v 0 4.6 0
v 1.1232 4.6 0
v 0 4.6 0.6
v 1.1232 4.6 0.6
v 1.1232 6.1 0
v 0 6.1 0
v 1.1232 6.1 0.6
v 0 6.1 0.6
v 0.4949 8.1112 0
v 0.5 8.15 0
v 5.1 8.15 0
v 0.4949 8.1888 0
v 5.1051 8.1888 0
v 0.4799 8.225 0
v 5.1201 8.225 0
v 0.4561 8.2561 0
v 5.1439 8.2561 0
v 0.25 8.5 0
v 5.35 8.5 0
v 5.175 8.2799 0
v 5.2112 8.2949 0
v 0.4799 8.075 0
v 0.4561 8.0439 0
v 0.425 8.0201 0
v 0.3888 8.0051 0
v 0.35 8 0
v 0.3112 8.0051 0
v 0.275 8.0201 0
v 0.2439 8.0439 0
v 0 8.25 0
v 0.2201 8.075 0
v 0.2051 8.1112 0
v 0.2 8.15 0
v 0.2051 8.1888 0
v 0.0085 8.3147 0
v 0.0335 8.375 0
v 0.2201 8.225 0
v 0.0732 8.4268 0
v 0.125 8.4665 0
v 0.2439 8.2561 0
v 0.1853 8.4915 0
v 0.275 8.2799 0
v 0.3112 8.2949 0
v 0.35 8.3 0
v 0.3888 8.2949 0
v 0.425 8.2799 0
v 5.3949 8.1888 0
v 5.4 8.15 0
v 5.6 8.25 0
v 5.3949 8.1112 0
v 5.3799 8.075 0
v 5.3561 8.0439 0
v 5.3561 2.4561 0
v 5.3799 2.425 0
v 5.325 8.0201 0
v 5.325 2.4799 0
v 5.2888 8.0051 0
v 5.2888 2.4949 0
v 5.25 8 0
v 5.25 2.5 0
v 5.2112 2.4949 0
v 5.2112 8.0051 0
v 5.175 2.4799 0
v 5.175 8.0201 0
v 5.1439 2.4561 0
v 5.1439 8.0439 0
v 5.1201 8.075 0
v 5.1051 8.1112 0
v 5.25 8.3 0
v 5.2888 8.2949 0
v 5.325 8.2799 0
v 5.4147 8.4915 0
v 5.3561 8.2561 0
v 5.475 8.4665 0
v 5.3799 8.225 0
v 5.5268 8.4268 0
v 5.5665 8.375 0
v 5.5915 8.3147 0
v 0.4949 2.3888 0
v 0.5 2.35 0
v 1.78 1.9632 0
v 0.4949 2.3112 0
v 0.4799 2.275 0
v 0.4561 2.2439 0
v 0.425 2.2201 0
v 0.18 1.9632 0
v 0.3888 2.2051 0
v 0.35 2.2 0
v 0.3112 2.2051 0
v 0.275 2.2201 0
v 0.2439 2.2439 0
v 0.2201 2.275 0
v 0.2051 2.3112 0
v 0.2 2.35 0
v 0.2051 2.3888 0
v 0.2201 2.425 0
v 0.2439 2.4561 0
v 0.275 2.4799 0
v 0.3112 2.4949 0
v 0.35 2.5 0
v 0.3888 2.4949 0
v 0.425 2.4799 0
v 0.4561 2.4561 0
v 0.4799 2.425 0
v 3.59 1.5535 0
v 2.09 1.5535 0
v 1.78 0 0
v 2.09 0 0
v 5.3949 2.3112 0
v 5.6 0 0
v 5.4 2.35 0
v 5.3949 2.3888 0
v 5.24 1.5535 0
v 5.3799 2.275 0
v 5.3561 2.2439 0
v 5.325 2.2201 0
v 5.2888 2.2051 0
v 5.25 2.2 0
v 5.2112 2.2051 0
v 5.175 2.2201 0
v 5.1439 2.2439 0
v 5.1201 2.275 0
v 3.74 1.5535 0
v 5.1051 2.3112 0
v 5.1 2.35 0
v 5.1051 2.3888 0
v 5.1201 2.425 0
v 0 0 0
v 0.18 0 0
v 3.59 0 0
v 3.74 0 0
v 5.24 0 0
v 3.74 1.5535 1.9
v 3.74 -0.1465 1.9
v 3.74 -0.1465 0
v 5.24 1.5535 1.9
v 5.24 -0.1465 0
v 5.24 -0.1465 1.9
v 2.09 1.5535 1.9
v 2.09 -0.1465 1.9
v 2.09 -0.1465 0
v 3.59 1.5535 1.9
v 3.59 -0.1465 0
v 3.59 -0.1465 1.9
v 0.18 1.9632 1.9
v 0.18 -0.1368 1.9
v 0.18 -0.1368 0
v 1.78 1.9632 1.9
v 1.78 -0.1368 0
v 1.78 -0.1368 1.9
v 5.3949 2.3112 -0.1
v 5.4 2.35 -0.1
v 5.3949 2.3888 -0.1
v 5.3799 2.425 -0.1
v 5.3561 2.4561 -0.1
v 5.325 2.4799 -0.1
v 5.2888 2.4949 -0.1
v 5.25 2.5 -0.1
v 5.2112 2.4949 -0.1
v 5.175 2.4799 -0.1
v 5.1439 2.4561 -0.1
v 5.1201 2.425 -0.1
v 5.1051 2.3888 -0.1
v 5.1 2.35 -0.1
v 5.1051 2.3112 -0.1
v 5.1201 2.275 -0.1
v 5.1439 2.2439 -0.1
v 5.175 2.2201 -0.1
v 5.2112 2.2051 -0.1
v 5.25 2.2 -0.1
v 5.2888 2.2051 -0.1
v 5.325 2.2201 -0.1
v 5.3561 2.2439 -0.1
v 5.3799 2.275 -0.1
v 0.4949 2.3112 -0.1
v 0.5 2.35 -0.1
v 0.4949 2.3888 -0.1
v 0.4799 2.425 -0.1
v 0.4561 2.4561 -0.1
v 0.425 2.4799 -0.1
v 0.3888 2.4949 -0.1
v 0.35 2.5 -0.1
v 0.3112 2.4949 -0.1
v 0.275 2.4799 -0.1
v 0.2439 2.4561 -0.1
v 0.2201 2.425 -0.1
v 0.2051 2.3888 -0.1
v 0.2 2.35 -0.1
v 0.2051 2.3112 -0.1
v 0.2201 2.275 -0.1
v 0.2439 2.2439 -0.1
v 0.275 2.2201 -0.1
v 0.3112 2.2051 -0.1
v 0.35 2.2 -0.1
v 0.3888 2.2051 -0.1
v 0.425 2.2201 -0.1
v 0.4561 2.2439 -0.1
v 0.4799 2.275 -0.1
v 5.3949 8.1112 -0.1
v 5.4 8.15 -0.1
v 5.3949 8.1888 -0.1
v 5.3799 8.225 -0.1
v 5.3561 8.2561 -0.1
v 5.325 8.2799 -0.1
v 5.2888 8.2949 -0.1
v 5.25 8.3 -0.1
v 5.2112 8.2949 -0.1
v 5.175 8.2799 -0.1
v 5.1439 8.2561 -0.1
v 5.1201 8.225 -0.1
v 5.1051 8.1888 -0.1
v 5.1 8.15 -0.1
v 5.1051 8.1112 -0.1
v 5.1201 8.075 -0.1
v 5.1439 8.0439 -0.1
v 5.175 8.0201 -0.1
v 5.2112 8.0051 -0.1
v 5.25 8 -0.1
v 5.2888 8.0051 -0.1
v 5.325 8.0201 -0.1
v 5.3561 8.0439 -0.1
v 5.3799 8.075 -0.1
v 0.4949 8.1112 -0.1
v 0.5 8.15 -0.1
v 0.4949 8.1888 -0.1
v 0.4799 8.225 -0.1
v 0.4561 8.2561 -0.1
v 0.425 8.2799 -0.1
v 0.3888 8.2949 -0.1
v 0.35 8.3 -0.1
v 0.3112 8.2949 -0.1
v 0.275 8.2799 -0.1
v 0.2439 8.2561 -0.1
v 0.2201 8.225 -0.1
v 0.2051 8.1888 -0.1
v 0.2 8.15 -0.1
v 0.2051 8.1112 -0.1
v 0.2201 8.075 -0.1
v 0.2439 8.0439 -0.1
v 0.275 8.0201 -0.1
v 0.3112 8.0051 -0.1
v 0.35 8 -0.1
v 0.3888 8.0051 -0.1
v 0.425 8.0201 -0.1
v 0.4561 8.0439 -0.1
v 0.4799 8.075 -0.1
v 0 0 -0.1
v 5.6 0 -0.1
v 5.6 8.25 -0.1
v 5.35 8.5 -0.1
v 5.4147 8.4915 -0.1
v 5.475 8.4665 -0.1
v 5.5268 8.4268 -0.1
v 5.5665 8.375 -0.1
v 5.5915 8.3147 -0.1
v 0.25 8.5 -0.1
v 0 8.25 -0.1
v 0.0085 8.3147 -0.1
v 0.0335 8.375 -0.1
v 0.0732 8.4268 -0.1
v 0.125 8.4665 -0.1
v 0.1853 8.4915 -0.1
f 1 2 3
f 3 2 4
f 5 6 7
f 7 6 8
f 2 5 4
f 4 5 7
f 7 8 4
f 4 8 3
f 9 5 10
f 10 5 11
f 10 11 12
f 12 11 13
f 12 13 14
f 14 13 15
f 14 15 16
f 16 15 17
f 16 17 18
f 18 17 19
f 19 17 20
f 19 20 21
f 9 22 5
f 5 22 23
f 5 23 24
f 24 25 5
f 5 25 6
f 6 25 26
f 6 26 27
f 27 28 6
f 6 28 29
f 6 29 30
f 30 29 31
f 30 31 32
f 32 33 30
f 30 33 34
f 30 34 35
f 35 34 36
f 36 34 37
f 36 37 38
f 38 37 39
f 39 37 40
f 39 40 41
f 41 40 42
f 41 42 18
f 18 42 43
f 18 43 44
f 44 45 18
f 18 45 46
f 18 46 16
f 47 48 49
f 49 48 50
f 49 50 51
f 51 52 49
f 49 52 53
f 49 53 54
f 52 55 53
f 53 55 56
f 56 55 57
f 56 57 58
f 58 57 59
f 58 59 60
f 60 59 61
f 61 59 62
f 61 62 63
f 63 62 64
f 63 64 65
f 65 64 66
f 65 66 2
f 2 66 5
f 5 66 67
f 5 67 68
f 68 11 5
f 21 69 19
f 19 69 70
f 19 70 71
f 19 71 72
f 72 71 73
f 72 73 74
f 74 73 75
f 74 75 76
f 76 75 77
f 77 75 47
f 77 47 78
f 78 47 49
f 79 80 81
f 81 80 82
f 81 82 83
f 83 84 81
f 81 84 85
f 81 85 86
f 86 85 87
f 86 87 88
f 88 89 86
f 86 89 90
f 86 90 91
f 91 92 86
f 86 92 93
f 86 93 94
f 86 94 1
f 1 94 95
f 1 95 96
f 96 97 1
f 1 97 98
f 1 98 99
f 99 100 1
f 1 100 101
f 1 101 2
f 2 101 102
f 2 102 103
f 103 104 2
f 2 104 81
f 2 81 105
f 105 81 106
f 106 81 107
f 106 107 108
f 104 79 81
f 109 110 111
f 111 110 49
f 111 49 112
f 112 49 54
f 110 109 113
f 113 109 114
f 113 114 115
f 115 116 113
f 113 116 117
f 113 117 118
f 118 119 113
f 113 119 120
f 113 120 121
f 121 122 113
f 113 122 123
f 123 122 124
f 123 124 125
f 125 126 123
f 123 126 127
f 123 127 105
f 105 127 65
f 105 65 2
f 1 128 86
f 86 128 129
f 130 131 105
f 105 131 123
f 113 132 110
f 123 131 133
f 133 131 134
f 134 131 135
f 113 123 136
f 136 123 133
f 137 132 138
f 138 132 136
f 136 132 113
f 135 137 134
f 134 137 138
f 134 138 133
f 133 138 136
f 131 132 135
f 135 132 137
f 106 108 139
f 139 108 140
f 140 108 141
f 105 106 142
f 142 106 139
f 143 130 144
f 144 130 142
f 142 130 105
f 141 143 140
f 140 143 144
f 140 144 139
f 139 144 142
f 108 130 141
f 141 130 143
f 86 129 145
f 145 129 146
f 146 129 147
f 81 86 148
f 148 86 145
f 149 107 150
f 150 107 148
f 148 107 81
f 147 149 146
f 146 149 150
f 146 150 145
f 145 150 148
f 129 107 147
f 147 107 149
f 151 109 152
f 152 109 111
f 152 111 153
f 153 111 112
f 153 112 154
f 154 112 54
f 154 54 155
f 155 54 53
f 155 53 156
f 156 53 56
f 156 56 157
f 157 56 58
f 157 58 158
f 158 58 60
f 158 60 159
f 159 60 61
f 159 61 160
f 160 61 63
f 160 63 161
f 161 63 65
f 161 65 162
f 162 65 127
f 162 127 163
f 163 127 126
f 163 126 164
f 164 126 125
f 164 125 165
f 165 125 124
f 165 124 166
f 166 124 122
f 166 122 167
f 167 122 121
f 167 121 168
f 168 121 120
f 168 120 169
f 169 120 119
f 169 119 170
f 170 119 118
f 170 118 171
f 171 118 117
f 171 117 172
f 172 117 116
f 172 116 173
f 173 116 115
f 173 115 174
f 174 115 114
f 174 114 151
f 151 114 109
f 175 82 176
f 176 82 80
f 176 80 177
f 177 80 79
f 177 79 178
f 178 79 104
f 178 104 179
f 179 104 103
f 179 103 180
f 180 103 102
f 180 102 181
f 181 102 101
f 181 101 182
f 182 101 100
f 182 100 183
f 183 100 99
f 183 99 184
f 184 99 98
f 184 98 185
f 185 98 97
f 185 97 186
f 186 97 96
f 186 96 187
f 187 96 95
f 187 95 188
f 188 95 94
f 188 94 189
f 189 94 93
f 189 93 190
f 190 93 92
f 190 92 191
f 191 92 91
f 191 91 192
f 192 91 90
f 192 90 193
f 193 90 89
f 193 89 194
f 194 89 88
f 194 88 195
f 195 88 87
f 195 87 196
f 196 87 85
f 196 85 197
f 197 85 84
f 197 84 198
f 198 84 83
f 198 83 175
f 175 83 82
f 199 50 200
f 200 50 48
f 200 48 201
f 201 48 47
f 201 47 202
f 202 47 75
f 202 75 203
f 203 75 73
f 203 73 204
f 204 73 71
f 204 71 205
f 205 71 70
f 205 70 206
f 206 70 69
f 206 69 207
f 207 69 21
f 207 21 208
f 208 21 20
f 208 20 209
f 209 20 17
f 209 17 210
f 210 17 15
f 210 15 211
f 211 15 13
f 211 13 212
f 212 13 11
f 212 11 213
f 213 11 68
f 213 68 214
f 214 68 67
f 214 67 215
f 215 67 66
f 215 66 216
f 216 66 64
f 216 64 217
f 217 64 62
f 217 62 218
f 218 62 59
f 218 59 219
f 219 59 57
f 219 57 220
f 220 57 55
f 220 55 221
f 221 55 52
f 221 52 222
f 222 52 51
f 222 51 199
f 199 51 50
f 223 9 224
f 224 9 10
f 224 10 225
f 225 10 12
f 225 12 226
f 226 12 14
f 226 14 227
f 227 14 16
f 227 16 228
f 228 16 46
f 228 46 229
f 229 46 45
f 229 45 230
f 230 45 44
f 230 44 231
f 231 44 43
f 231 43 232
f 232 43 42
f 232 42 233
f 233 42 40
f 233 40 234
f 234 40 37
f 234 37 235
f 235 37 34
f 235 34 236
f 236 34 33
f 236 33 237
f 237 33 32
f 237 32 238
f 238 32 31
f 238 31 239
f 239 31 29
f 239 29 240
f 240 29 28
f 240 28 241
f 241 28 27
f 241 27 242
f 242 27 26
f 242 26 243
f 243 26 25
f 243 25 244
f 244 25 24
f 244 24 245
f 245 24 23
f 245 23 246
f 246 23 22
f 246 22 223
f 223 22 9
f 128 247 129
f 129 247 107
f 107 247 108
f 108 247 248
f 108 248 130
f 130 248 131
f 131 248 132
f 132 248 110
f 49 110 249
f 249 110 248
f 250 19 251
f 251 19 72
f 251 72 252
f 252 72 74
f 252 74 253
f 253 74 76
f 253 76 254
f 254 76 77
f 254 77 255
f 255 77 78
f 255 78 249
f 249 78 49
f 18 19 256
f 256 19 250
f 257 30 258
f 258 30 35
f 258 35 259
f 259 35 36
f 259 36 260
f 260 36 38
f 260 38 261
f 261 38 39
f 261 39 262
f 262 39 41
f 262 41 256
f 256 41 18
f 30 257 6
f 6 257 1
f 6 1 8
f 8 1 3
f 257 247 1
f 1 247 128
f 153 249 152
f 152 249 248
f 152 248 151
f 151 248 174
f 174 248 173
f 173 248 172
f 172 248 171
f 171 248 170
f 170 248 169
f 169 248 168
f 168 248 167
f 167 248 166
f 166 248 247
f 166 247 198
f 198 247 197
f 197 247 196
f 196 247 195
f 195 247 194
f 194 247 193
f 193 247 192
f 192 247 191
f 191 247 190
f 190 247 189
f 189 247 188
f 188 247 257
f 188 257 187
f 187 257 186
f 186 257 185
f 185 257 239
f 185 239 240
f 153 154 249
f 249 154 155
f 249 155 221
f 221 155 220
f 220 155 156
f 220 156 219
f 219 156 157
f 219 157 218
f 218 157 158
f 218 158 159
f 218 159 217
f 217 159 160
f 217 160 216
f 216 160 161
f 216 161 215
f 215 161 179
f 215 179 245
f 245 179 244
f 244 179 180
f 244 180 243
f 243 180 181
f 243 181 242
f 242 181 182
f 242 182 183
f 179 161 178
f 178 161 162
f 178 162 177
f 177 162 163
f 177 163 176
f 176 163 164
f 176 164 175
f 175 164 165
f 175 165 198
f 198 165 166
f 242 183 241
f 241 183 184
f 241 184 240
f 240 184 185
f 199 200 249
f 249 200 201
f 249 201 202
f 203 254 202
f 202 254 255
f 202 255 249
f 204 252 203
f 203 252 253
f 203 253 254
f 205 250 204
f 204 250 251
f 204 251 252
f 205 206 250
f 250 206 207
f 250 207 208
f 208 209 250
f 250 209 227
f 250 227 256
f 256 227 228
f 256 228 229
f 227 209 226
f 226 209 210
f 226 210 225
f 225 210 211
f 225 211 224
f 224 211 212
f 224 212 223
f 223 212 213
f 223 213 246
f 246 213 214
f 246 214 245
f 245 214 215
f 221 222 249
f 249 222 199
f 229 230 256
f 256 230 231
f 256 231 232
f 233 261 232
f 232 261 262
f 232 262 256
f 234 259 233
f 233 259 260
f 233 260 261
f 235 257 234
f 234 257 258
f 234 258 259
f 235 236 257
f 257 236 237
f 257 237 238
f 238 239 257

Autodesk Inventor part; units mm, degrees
ref_plane "YZ Plane" through (0, 0, 0) normal (1, 0, 0) x (0, 1, 0)
ref_plane "XZ Plane" through (0, 0, 0) normal (0, 1, 0) x (-1, 0, 0)
ref_plane "XY Plane" through (0, 0, 0) normal (0, 0, 1) x (1, 0, 0)
sketch "Boceto1" plane through (0, 0, 0) normal (0, 0, 1) x (1, 0, 0)
  line L0 (0.25, 8.5) -> (5.35, 8.5)
  line L1 (5.6, 8.25) -> (5.6, 0)
  line L2 (0, 0) -> (0, 8.25)
  line L3 (5.6, 0) -> (5.4774, 0)
  line L4 (0.18, -0.1368) -> (1.78, -0.1368)
  line L5 (2.09, -0.1465) -> (3.59, -0.1465)
  line L6 (3.74, -0.1465) -> (5.24, -0.1465)
  line L7 (0.18, 0) -> (0, 0)
  line L8 (2.09, 0) -> (1.78, 0)
  line L9 (3.59, 0) -> (3.74, 0)
  line L10 (5.24, 0) -> (5.6, 0)
  line L11 (1.1232, 4.6) -> (1.1232, 6.1)
  line L12 (1.1232, 6.1) -> (0, 6.1)
  line L13 (1.1232, 4.6) -> (0, 4.6)
  line L14 (0, 8.25) -> (0, 8.15)
  circle A0 centre (0.35, 8.15) radius 0.15
  circle A1 centre (5.25, 8.15) radius 0.15
  circle A2 centre (0.35, 2.35) radius 0.15
  circle A3 centre (5.25, 2.35) radius 0.15
  arc A4 (0.25, 8.5) -> (0, 8.25) centre (0.25, 8.25) ccw
  arc A5 (5.6, 8.25) -> (5.35, 8.5) centre (5.35, 8.25) ccw
  line L15 (0, 0) -> (5.6, 0)
extrude "Extrusión1" add sketch "Boceto1" against normal blind 0.1
sketch "Boceto2" plane through (0, 0, 0) normal (0, 0, 1) x (1, 0, 0)
  line L0 (0.25, 8.5) -> (5.35, 8.5)
  line L1 (5.6, 8.25) -> (5.6, 0)
  line L2 (0, 0) -> (0, 8.25)
  line L3 (5.6, 0) -> (5.4774, 0)
  line L4 (0.18, -0.1368) -> (1.78, -0.1368)
  line L5 (1.78, -0.1368) -> (1.78, 1.9632)
  line L6 (1.78, 1.9632) -> (0.18, 1.9632)
  line L7 (0.18, 1.9632) -> (0.18, -0.1368)
  line L8 (2.09, -0.1465) -> (3.59, -0.1465)
  line L9 (3.59, -0.1465) -> (3.59, 1.5535)
  line L10 (3.59, 1.5535) -> (2.09, 1.5535)
  line L11 (2.09, 1.5535) -> (2.09, -0.1465)
  line L12 (3.74, -0.1465) -> (5.24, -0.1465)
  line L13 (5.24, -0.1465) -> (5.24, 1.5535)
  line L14 (5.24, 1.5535) -> (3.74, 1.5535)
  line L15 (3.74, 1.5535) -> (3.74, -0.1465)
  line L16 (0.18, 0) -> (0, 0)
  line L17 (2.09, 0) -> (1.78, 0)
  line L18 (3.59, 0) -> (3.74, 0)
  line L19 (5.24, 0) -> (5.6, 0)
  line L20 (1.1232, 4.6) -> (1.1232, 6.1)
  line L21 (1.1232, 6.1) -> (0, 6.1)
  line L22 (1.1232, 4.6) -> (0, 4.6)
  line L23 (0, 8.25) -> (0, 8.15)
  circle A0 centre (0.35, 8.15) radius 0.15
  circle A1 centre (5.25, 8.15) radius 0.15
  circle A2 centre (0.35, 2.35) radius 0.15
  circle A3 centre (5.25, 2.35) radius 0.15
  arc A4 (0.25, 8.5) -> (0, 8.25) centre (0.25, 8.25) ccw
  arc A5 (5.6, 8.25) -> (5.35, 8.5) centre (5.35, 8.25) ccw
extrude "Extrusión2" add sketch "Boceto2" along normal blind 1.9 contours L13 L12 L15 L14 | L7 L6 L5 L4 | L9 L8 L11 L10
sketch "Boceto3" plane through (0, 0, 0) normal (0, 0, 1) x (1, 0, 0)
  line L0 (0.25, 8.5) -> (5.35, 8.5)
  line L1 (5.6, 8.25) -> (5.6, 0)
  line L2 (0, 0) -> (0, 8.25)
  line L3 (5.6, 0) -> (5.4774, 0)
  line L4 (0.18, -0.1368) -> (1.78, -0.1368)
  line L5 (1.78, -0.1368) -> (1.78, 1.9632)
  line L6 (1.78, 1.9632) -> (0.18, 1.9632)
  line L7 (0.18, 1.9632) -> (0.18, -0.1368)
  line L8 (2.09, -0.1465) -> (3.59, -0.1465)
  line L9 (3.59, -0.1465) -> (3.59, 1.5535)
  line L10 (3.59, 1.5535) -> (2.09, 1.5535)
  line L11 (2.09, 1.5535) -> (2.09, -0.1465)
  line L12 (3.74, -0.1465) -> (5.24, -0.1465)
  line L13 (5.24, -0.1465) -> (5.24, 1.5535)
  line L14 (5.24, 1.5535) -> (3.74, 1.5535)
  line L15 (3.74, 1.5535) -> (3.74, -0.1465)
  line L16 (0.18, 0) -> (0, 0)
  line L17 (2.09, 0) -> (1.78, 0)
  line L18 (3.59, 0) -> (3.74, 0)
  line L19 (5.24, 0) -> (5.6, 0)
  line L20 (1.1232, 4.6) -> (1.1232, 6.1)
  line L21 (1.1232, 6.1) -> (0, 6.1)
  line L22 (1.1232, 4.6) -> (0, 4.6)
  line L23 (0, 8.25) -> (0, 8.15)
  circle A0 centre (0.35, 8.15) radius 0.15
  circle A1 centre (5.25, 8.15) radius 0.15
  circle A2 centre (0.35, 2.35) radius 0.15
  circle A3 centre (5.25, 2.35) radius 0.15
  arc A4 (0.25, 8.5) -> (0, 8.25) centre (0.25, 8.25) ccw
  arc A5 (5.6, 8.25) -> (5.35, 8.5) centre (5.35, 8.25) ccw
  point P0 (0, 0)
extrude "Extrusión3" add sketch "Boceto3" along normal blind 0.6 contours L21 L20 L22 L2
properties part number "learnbotOdroid"
